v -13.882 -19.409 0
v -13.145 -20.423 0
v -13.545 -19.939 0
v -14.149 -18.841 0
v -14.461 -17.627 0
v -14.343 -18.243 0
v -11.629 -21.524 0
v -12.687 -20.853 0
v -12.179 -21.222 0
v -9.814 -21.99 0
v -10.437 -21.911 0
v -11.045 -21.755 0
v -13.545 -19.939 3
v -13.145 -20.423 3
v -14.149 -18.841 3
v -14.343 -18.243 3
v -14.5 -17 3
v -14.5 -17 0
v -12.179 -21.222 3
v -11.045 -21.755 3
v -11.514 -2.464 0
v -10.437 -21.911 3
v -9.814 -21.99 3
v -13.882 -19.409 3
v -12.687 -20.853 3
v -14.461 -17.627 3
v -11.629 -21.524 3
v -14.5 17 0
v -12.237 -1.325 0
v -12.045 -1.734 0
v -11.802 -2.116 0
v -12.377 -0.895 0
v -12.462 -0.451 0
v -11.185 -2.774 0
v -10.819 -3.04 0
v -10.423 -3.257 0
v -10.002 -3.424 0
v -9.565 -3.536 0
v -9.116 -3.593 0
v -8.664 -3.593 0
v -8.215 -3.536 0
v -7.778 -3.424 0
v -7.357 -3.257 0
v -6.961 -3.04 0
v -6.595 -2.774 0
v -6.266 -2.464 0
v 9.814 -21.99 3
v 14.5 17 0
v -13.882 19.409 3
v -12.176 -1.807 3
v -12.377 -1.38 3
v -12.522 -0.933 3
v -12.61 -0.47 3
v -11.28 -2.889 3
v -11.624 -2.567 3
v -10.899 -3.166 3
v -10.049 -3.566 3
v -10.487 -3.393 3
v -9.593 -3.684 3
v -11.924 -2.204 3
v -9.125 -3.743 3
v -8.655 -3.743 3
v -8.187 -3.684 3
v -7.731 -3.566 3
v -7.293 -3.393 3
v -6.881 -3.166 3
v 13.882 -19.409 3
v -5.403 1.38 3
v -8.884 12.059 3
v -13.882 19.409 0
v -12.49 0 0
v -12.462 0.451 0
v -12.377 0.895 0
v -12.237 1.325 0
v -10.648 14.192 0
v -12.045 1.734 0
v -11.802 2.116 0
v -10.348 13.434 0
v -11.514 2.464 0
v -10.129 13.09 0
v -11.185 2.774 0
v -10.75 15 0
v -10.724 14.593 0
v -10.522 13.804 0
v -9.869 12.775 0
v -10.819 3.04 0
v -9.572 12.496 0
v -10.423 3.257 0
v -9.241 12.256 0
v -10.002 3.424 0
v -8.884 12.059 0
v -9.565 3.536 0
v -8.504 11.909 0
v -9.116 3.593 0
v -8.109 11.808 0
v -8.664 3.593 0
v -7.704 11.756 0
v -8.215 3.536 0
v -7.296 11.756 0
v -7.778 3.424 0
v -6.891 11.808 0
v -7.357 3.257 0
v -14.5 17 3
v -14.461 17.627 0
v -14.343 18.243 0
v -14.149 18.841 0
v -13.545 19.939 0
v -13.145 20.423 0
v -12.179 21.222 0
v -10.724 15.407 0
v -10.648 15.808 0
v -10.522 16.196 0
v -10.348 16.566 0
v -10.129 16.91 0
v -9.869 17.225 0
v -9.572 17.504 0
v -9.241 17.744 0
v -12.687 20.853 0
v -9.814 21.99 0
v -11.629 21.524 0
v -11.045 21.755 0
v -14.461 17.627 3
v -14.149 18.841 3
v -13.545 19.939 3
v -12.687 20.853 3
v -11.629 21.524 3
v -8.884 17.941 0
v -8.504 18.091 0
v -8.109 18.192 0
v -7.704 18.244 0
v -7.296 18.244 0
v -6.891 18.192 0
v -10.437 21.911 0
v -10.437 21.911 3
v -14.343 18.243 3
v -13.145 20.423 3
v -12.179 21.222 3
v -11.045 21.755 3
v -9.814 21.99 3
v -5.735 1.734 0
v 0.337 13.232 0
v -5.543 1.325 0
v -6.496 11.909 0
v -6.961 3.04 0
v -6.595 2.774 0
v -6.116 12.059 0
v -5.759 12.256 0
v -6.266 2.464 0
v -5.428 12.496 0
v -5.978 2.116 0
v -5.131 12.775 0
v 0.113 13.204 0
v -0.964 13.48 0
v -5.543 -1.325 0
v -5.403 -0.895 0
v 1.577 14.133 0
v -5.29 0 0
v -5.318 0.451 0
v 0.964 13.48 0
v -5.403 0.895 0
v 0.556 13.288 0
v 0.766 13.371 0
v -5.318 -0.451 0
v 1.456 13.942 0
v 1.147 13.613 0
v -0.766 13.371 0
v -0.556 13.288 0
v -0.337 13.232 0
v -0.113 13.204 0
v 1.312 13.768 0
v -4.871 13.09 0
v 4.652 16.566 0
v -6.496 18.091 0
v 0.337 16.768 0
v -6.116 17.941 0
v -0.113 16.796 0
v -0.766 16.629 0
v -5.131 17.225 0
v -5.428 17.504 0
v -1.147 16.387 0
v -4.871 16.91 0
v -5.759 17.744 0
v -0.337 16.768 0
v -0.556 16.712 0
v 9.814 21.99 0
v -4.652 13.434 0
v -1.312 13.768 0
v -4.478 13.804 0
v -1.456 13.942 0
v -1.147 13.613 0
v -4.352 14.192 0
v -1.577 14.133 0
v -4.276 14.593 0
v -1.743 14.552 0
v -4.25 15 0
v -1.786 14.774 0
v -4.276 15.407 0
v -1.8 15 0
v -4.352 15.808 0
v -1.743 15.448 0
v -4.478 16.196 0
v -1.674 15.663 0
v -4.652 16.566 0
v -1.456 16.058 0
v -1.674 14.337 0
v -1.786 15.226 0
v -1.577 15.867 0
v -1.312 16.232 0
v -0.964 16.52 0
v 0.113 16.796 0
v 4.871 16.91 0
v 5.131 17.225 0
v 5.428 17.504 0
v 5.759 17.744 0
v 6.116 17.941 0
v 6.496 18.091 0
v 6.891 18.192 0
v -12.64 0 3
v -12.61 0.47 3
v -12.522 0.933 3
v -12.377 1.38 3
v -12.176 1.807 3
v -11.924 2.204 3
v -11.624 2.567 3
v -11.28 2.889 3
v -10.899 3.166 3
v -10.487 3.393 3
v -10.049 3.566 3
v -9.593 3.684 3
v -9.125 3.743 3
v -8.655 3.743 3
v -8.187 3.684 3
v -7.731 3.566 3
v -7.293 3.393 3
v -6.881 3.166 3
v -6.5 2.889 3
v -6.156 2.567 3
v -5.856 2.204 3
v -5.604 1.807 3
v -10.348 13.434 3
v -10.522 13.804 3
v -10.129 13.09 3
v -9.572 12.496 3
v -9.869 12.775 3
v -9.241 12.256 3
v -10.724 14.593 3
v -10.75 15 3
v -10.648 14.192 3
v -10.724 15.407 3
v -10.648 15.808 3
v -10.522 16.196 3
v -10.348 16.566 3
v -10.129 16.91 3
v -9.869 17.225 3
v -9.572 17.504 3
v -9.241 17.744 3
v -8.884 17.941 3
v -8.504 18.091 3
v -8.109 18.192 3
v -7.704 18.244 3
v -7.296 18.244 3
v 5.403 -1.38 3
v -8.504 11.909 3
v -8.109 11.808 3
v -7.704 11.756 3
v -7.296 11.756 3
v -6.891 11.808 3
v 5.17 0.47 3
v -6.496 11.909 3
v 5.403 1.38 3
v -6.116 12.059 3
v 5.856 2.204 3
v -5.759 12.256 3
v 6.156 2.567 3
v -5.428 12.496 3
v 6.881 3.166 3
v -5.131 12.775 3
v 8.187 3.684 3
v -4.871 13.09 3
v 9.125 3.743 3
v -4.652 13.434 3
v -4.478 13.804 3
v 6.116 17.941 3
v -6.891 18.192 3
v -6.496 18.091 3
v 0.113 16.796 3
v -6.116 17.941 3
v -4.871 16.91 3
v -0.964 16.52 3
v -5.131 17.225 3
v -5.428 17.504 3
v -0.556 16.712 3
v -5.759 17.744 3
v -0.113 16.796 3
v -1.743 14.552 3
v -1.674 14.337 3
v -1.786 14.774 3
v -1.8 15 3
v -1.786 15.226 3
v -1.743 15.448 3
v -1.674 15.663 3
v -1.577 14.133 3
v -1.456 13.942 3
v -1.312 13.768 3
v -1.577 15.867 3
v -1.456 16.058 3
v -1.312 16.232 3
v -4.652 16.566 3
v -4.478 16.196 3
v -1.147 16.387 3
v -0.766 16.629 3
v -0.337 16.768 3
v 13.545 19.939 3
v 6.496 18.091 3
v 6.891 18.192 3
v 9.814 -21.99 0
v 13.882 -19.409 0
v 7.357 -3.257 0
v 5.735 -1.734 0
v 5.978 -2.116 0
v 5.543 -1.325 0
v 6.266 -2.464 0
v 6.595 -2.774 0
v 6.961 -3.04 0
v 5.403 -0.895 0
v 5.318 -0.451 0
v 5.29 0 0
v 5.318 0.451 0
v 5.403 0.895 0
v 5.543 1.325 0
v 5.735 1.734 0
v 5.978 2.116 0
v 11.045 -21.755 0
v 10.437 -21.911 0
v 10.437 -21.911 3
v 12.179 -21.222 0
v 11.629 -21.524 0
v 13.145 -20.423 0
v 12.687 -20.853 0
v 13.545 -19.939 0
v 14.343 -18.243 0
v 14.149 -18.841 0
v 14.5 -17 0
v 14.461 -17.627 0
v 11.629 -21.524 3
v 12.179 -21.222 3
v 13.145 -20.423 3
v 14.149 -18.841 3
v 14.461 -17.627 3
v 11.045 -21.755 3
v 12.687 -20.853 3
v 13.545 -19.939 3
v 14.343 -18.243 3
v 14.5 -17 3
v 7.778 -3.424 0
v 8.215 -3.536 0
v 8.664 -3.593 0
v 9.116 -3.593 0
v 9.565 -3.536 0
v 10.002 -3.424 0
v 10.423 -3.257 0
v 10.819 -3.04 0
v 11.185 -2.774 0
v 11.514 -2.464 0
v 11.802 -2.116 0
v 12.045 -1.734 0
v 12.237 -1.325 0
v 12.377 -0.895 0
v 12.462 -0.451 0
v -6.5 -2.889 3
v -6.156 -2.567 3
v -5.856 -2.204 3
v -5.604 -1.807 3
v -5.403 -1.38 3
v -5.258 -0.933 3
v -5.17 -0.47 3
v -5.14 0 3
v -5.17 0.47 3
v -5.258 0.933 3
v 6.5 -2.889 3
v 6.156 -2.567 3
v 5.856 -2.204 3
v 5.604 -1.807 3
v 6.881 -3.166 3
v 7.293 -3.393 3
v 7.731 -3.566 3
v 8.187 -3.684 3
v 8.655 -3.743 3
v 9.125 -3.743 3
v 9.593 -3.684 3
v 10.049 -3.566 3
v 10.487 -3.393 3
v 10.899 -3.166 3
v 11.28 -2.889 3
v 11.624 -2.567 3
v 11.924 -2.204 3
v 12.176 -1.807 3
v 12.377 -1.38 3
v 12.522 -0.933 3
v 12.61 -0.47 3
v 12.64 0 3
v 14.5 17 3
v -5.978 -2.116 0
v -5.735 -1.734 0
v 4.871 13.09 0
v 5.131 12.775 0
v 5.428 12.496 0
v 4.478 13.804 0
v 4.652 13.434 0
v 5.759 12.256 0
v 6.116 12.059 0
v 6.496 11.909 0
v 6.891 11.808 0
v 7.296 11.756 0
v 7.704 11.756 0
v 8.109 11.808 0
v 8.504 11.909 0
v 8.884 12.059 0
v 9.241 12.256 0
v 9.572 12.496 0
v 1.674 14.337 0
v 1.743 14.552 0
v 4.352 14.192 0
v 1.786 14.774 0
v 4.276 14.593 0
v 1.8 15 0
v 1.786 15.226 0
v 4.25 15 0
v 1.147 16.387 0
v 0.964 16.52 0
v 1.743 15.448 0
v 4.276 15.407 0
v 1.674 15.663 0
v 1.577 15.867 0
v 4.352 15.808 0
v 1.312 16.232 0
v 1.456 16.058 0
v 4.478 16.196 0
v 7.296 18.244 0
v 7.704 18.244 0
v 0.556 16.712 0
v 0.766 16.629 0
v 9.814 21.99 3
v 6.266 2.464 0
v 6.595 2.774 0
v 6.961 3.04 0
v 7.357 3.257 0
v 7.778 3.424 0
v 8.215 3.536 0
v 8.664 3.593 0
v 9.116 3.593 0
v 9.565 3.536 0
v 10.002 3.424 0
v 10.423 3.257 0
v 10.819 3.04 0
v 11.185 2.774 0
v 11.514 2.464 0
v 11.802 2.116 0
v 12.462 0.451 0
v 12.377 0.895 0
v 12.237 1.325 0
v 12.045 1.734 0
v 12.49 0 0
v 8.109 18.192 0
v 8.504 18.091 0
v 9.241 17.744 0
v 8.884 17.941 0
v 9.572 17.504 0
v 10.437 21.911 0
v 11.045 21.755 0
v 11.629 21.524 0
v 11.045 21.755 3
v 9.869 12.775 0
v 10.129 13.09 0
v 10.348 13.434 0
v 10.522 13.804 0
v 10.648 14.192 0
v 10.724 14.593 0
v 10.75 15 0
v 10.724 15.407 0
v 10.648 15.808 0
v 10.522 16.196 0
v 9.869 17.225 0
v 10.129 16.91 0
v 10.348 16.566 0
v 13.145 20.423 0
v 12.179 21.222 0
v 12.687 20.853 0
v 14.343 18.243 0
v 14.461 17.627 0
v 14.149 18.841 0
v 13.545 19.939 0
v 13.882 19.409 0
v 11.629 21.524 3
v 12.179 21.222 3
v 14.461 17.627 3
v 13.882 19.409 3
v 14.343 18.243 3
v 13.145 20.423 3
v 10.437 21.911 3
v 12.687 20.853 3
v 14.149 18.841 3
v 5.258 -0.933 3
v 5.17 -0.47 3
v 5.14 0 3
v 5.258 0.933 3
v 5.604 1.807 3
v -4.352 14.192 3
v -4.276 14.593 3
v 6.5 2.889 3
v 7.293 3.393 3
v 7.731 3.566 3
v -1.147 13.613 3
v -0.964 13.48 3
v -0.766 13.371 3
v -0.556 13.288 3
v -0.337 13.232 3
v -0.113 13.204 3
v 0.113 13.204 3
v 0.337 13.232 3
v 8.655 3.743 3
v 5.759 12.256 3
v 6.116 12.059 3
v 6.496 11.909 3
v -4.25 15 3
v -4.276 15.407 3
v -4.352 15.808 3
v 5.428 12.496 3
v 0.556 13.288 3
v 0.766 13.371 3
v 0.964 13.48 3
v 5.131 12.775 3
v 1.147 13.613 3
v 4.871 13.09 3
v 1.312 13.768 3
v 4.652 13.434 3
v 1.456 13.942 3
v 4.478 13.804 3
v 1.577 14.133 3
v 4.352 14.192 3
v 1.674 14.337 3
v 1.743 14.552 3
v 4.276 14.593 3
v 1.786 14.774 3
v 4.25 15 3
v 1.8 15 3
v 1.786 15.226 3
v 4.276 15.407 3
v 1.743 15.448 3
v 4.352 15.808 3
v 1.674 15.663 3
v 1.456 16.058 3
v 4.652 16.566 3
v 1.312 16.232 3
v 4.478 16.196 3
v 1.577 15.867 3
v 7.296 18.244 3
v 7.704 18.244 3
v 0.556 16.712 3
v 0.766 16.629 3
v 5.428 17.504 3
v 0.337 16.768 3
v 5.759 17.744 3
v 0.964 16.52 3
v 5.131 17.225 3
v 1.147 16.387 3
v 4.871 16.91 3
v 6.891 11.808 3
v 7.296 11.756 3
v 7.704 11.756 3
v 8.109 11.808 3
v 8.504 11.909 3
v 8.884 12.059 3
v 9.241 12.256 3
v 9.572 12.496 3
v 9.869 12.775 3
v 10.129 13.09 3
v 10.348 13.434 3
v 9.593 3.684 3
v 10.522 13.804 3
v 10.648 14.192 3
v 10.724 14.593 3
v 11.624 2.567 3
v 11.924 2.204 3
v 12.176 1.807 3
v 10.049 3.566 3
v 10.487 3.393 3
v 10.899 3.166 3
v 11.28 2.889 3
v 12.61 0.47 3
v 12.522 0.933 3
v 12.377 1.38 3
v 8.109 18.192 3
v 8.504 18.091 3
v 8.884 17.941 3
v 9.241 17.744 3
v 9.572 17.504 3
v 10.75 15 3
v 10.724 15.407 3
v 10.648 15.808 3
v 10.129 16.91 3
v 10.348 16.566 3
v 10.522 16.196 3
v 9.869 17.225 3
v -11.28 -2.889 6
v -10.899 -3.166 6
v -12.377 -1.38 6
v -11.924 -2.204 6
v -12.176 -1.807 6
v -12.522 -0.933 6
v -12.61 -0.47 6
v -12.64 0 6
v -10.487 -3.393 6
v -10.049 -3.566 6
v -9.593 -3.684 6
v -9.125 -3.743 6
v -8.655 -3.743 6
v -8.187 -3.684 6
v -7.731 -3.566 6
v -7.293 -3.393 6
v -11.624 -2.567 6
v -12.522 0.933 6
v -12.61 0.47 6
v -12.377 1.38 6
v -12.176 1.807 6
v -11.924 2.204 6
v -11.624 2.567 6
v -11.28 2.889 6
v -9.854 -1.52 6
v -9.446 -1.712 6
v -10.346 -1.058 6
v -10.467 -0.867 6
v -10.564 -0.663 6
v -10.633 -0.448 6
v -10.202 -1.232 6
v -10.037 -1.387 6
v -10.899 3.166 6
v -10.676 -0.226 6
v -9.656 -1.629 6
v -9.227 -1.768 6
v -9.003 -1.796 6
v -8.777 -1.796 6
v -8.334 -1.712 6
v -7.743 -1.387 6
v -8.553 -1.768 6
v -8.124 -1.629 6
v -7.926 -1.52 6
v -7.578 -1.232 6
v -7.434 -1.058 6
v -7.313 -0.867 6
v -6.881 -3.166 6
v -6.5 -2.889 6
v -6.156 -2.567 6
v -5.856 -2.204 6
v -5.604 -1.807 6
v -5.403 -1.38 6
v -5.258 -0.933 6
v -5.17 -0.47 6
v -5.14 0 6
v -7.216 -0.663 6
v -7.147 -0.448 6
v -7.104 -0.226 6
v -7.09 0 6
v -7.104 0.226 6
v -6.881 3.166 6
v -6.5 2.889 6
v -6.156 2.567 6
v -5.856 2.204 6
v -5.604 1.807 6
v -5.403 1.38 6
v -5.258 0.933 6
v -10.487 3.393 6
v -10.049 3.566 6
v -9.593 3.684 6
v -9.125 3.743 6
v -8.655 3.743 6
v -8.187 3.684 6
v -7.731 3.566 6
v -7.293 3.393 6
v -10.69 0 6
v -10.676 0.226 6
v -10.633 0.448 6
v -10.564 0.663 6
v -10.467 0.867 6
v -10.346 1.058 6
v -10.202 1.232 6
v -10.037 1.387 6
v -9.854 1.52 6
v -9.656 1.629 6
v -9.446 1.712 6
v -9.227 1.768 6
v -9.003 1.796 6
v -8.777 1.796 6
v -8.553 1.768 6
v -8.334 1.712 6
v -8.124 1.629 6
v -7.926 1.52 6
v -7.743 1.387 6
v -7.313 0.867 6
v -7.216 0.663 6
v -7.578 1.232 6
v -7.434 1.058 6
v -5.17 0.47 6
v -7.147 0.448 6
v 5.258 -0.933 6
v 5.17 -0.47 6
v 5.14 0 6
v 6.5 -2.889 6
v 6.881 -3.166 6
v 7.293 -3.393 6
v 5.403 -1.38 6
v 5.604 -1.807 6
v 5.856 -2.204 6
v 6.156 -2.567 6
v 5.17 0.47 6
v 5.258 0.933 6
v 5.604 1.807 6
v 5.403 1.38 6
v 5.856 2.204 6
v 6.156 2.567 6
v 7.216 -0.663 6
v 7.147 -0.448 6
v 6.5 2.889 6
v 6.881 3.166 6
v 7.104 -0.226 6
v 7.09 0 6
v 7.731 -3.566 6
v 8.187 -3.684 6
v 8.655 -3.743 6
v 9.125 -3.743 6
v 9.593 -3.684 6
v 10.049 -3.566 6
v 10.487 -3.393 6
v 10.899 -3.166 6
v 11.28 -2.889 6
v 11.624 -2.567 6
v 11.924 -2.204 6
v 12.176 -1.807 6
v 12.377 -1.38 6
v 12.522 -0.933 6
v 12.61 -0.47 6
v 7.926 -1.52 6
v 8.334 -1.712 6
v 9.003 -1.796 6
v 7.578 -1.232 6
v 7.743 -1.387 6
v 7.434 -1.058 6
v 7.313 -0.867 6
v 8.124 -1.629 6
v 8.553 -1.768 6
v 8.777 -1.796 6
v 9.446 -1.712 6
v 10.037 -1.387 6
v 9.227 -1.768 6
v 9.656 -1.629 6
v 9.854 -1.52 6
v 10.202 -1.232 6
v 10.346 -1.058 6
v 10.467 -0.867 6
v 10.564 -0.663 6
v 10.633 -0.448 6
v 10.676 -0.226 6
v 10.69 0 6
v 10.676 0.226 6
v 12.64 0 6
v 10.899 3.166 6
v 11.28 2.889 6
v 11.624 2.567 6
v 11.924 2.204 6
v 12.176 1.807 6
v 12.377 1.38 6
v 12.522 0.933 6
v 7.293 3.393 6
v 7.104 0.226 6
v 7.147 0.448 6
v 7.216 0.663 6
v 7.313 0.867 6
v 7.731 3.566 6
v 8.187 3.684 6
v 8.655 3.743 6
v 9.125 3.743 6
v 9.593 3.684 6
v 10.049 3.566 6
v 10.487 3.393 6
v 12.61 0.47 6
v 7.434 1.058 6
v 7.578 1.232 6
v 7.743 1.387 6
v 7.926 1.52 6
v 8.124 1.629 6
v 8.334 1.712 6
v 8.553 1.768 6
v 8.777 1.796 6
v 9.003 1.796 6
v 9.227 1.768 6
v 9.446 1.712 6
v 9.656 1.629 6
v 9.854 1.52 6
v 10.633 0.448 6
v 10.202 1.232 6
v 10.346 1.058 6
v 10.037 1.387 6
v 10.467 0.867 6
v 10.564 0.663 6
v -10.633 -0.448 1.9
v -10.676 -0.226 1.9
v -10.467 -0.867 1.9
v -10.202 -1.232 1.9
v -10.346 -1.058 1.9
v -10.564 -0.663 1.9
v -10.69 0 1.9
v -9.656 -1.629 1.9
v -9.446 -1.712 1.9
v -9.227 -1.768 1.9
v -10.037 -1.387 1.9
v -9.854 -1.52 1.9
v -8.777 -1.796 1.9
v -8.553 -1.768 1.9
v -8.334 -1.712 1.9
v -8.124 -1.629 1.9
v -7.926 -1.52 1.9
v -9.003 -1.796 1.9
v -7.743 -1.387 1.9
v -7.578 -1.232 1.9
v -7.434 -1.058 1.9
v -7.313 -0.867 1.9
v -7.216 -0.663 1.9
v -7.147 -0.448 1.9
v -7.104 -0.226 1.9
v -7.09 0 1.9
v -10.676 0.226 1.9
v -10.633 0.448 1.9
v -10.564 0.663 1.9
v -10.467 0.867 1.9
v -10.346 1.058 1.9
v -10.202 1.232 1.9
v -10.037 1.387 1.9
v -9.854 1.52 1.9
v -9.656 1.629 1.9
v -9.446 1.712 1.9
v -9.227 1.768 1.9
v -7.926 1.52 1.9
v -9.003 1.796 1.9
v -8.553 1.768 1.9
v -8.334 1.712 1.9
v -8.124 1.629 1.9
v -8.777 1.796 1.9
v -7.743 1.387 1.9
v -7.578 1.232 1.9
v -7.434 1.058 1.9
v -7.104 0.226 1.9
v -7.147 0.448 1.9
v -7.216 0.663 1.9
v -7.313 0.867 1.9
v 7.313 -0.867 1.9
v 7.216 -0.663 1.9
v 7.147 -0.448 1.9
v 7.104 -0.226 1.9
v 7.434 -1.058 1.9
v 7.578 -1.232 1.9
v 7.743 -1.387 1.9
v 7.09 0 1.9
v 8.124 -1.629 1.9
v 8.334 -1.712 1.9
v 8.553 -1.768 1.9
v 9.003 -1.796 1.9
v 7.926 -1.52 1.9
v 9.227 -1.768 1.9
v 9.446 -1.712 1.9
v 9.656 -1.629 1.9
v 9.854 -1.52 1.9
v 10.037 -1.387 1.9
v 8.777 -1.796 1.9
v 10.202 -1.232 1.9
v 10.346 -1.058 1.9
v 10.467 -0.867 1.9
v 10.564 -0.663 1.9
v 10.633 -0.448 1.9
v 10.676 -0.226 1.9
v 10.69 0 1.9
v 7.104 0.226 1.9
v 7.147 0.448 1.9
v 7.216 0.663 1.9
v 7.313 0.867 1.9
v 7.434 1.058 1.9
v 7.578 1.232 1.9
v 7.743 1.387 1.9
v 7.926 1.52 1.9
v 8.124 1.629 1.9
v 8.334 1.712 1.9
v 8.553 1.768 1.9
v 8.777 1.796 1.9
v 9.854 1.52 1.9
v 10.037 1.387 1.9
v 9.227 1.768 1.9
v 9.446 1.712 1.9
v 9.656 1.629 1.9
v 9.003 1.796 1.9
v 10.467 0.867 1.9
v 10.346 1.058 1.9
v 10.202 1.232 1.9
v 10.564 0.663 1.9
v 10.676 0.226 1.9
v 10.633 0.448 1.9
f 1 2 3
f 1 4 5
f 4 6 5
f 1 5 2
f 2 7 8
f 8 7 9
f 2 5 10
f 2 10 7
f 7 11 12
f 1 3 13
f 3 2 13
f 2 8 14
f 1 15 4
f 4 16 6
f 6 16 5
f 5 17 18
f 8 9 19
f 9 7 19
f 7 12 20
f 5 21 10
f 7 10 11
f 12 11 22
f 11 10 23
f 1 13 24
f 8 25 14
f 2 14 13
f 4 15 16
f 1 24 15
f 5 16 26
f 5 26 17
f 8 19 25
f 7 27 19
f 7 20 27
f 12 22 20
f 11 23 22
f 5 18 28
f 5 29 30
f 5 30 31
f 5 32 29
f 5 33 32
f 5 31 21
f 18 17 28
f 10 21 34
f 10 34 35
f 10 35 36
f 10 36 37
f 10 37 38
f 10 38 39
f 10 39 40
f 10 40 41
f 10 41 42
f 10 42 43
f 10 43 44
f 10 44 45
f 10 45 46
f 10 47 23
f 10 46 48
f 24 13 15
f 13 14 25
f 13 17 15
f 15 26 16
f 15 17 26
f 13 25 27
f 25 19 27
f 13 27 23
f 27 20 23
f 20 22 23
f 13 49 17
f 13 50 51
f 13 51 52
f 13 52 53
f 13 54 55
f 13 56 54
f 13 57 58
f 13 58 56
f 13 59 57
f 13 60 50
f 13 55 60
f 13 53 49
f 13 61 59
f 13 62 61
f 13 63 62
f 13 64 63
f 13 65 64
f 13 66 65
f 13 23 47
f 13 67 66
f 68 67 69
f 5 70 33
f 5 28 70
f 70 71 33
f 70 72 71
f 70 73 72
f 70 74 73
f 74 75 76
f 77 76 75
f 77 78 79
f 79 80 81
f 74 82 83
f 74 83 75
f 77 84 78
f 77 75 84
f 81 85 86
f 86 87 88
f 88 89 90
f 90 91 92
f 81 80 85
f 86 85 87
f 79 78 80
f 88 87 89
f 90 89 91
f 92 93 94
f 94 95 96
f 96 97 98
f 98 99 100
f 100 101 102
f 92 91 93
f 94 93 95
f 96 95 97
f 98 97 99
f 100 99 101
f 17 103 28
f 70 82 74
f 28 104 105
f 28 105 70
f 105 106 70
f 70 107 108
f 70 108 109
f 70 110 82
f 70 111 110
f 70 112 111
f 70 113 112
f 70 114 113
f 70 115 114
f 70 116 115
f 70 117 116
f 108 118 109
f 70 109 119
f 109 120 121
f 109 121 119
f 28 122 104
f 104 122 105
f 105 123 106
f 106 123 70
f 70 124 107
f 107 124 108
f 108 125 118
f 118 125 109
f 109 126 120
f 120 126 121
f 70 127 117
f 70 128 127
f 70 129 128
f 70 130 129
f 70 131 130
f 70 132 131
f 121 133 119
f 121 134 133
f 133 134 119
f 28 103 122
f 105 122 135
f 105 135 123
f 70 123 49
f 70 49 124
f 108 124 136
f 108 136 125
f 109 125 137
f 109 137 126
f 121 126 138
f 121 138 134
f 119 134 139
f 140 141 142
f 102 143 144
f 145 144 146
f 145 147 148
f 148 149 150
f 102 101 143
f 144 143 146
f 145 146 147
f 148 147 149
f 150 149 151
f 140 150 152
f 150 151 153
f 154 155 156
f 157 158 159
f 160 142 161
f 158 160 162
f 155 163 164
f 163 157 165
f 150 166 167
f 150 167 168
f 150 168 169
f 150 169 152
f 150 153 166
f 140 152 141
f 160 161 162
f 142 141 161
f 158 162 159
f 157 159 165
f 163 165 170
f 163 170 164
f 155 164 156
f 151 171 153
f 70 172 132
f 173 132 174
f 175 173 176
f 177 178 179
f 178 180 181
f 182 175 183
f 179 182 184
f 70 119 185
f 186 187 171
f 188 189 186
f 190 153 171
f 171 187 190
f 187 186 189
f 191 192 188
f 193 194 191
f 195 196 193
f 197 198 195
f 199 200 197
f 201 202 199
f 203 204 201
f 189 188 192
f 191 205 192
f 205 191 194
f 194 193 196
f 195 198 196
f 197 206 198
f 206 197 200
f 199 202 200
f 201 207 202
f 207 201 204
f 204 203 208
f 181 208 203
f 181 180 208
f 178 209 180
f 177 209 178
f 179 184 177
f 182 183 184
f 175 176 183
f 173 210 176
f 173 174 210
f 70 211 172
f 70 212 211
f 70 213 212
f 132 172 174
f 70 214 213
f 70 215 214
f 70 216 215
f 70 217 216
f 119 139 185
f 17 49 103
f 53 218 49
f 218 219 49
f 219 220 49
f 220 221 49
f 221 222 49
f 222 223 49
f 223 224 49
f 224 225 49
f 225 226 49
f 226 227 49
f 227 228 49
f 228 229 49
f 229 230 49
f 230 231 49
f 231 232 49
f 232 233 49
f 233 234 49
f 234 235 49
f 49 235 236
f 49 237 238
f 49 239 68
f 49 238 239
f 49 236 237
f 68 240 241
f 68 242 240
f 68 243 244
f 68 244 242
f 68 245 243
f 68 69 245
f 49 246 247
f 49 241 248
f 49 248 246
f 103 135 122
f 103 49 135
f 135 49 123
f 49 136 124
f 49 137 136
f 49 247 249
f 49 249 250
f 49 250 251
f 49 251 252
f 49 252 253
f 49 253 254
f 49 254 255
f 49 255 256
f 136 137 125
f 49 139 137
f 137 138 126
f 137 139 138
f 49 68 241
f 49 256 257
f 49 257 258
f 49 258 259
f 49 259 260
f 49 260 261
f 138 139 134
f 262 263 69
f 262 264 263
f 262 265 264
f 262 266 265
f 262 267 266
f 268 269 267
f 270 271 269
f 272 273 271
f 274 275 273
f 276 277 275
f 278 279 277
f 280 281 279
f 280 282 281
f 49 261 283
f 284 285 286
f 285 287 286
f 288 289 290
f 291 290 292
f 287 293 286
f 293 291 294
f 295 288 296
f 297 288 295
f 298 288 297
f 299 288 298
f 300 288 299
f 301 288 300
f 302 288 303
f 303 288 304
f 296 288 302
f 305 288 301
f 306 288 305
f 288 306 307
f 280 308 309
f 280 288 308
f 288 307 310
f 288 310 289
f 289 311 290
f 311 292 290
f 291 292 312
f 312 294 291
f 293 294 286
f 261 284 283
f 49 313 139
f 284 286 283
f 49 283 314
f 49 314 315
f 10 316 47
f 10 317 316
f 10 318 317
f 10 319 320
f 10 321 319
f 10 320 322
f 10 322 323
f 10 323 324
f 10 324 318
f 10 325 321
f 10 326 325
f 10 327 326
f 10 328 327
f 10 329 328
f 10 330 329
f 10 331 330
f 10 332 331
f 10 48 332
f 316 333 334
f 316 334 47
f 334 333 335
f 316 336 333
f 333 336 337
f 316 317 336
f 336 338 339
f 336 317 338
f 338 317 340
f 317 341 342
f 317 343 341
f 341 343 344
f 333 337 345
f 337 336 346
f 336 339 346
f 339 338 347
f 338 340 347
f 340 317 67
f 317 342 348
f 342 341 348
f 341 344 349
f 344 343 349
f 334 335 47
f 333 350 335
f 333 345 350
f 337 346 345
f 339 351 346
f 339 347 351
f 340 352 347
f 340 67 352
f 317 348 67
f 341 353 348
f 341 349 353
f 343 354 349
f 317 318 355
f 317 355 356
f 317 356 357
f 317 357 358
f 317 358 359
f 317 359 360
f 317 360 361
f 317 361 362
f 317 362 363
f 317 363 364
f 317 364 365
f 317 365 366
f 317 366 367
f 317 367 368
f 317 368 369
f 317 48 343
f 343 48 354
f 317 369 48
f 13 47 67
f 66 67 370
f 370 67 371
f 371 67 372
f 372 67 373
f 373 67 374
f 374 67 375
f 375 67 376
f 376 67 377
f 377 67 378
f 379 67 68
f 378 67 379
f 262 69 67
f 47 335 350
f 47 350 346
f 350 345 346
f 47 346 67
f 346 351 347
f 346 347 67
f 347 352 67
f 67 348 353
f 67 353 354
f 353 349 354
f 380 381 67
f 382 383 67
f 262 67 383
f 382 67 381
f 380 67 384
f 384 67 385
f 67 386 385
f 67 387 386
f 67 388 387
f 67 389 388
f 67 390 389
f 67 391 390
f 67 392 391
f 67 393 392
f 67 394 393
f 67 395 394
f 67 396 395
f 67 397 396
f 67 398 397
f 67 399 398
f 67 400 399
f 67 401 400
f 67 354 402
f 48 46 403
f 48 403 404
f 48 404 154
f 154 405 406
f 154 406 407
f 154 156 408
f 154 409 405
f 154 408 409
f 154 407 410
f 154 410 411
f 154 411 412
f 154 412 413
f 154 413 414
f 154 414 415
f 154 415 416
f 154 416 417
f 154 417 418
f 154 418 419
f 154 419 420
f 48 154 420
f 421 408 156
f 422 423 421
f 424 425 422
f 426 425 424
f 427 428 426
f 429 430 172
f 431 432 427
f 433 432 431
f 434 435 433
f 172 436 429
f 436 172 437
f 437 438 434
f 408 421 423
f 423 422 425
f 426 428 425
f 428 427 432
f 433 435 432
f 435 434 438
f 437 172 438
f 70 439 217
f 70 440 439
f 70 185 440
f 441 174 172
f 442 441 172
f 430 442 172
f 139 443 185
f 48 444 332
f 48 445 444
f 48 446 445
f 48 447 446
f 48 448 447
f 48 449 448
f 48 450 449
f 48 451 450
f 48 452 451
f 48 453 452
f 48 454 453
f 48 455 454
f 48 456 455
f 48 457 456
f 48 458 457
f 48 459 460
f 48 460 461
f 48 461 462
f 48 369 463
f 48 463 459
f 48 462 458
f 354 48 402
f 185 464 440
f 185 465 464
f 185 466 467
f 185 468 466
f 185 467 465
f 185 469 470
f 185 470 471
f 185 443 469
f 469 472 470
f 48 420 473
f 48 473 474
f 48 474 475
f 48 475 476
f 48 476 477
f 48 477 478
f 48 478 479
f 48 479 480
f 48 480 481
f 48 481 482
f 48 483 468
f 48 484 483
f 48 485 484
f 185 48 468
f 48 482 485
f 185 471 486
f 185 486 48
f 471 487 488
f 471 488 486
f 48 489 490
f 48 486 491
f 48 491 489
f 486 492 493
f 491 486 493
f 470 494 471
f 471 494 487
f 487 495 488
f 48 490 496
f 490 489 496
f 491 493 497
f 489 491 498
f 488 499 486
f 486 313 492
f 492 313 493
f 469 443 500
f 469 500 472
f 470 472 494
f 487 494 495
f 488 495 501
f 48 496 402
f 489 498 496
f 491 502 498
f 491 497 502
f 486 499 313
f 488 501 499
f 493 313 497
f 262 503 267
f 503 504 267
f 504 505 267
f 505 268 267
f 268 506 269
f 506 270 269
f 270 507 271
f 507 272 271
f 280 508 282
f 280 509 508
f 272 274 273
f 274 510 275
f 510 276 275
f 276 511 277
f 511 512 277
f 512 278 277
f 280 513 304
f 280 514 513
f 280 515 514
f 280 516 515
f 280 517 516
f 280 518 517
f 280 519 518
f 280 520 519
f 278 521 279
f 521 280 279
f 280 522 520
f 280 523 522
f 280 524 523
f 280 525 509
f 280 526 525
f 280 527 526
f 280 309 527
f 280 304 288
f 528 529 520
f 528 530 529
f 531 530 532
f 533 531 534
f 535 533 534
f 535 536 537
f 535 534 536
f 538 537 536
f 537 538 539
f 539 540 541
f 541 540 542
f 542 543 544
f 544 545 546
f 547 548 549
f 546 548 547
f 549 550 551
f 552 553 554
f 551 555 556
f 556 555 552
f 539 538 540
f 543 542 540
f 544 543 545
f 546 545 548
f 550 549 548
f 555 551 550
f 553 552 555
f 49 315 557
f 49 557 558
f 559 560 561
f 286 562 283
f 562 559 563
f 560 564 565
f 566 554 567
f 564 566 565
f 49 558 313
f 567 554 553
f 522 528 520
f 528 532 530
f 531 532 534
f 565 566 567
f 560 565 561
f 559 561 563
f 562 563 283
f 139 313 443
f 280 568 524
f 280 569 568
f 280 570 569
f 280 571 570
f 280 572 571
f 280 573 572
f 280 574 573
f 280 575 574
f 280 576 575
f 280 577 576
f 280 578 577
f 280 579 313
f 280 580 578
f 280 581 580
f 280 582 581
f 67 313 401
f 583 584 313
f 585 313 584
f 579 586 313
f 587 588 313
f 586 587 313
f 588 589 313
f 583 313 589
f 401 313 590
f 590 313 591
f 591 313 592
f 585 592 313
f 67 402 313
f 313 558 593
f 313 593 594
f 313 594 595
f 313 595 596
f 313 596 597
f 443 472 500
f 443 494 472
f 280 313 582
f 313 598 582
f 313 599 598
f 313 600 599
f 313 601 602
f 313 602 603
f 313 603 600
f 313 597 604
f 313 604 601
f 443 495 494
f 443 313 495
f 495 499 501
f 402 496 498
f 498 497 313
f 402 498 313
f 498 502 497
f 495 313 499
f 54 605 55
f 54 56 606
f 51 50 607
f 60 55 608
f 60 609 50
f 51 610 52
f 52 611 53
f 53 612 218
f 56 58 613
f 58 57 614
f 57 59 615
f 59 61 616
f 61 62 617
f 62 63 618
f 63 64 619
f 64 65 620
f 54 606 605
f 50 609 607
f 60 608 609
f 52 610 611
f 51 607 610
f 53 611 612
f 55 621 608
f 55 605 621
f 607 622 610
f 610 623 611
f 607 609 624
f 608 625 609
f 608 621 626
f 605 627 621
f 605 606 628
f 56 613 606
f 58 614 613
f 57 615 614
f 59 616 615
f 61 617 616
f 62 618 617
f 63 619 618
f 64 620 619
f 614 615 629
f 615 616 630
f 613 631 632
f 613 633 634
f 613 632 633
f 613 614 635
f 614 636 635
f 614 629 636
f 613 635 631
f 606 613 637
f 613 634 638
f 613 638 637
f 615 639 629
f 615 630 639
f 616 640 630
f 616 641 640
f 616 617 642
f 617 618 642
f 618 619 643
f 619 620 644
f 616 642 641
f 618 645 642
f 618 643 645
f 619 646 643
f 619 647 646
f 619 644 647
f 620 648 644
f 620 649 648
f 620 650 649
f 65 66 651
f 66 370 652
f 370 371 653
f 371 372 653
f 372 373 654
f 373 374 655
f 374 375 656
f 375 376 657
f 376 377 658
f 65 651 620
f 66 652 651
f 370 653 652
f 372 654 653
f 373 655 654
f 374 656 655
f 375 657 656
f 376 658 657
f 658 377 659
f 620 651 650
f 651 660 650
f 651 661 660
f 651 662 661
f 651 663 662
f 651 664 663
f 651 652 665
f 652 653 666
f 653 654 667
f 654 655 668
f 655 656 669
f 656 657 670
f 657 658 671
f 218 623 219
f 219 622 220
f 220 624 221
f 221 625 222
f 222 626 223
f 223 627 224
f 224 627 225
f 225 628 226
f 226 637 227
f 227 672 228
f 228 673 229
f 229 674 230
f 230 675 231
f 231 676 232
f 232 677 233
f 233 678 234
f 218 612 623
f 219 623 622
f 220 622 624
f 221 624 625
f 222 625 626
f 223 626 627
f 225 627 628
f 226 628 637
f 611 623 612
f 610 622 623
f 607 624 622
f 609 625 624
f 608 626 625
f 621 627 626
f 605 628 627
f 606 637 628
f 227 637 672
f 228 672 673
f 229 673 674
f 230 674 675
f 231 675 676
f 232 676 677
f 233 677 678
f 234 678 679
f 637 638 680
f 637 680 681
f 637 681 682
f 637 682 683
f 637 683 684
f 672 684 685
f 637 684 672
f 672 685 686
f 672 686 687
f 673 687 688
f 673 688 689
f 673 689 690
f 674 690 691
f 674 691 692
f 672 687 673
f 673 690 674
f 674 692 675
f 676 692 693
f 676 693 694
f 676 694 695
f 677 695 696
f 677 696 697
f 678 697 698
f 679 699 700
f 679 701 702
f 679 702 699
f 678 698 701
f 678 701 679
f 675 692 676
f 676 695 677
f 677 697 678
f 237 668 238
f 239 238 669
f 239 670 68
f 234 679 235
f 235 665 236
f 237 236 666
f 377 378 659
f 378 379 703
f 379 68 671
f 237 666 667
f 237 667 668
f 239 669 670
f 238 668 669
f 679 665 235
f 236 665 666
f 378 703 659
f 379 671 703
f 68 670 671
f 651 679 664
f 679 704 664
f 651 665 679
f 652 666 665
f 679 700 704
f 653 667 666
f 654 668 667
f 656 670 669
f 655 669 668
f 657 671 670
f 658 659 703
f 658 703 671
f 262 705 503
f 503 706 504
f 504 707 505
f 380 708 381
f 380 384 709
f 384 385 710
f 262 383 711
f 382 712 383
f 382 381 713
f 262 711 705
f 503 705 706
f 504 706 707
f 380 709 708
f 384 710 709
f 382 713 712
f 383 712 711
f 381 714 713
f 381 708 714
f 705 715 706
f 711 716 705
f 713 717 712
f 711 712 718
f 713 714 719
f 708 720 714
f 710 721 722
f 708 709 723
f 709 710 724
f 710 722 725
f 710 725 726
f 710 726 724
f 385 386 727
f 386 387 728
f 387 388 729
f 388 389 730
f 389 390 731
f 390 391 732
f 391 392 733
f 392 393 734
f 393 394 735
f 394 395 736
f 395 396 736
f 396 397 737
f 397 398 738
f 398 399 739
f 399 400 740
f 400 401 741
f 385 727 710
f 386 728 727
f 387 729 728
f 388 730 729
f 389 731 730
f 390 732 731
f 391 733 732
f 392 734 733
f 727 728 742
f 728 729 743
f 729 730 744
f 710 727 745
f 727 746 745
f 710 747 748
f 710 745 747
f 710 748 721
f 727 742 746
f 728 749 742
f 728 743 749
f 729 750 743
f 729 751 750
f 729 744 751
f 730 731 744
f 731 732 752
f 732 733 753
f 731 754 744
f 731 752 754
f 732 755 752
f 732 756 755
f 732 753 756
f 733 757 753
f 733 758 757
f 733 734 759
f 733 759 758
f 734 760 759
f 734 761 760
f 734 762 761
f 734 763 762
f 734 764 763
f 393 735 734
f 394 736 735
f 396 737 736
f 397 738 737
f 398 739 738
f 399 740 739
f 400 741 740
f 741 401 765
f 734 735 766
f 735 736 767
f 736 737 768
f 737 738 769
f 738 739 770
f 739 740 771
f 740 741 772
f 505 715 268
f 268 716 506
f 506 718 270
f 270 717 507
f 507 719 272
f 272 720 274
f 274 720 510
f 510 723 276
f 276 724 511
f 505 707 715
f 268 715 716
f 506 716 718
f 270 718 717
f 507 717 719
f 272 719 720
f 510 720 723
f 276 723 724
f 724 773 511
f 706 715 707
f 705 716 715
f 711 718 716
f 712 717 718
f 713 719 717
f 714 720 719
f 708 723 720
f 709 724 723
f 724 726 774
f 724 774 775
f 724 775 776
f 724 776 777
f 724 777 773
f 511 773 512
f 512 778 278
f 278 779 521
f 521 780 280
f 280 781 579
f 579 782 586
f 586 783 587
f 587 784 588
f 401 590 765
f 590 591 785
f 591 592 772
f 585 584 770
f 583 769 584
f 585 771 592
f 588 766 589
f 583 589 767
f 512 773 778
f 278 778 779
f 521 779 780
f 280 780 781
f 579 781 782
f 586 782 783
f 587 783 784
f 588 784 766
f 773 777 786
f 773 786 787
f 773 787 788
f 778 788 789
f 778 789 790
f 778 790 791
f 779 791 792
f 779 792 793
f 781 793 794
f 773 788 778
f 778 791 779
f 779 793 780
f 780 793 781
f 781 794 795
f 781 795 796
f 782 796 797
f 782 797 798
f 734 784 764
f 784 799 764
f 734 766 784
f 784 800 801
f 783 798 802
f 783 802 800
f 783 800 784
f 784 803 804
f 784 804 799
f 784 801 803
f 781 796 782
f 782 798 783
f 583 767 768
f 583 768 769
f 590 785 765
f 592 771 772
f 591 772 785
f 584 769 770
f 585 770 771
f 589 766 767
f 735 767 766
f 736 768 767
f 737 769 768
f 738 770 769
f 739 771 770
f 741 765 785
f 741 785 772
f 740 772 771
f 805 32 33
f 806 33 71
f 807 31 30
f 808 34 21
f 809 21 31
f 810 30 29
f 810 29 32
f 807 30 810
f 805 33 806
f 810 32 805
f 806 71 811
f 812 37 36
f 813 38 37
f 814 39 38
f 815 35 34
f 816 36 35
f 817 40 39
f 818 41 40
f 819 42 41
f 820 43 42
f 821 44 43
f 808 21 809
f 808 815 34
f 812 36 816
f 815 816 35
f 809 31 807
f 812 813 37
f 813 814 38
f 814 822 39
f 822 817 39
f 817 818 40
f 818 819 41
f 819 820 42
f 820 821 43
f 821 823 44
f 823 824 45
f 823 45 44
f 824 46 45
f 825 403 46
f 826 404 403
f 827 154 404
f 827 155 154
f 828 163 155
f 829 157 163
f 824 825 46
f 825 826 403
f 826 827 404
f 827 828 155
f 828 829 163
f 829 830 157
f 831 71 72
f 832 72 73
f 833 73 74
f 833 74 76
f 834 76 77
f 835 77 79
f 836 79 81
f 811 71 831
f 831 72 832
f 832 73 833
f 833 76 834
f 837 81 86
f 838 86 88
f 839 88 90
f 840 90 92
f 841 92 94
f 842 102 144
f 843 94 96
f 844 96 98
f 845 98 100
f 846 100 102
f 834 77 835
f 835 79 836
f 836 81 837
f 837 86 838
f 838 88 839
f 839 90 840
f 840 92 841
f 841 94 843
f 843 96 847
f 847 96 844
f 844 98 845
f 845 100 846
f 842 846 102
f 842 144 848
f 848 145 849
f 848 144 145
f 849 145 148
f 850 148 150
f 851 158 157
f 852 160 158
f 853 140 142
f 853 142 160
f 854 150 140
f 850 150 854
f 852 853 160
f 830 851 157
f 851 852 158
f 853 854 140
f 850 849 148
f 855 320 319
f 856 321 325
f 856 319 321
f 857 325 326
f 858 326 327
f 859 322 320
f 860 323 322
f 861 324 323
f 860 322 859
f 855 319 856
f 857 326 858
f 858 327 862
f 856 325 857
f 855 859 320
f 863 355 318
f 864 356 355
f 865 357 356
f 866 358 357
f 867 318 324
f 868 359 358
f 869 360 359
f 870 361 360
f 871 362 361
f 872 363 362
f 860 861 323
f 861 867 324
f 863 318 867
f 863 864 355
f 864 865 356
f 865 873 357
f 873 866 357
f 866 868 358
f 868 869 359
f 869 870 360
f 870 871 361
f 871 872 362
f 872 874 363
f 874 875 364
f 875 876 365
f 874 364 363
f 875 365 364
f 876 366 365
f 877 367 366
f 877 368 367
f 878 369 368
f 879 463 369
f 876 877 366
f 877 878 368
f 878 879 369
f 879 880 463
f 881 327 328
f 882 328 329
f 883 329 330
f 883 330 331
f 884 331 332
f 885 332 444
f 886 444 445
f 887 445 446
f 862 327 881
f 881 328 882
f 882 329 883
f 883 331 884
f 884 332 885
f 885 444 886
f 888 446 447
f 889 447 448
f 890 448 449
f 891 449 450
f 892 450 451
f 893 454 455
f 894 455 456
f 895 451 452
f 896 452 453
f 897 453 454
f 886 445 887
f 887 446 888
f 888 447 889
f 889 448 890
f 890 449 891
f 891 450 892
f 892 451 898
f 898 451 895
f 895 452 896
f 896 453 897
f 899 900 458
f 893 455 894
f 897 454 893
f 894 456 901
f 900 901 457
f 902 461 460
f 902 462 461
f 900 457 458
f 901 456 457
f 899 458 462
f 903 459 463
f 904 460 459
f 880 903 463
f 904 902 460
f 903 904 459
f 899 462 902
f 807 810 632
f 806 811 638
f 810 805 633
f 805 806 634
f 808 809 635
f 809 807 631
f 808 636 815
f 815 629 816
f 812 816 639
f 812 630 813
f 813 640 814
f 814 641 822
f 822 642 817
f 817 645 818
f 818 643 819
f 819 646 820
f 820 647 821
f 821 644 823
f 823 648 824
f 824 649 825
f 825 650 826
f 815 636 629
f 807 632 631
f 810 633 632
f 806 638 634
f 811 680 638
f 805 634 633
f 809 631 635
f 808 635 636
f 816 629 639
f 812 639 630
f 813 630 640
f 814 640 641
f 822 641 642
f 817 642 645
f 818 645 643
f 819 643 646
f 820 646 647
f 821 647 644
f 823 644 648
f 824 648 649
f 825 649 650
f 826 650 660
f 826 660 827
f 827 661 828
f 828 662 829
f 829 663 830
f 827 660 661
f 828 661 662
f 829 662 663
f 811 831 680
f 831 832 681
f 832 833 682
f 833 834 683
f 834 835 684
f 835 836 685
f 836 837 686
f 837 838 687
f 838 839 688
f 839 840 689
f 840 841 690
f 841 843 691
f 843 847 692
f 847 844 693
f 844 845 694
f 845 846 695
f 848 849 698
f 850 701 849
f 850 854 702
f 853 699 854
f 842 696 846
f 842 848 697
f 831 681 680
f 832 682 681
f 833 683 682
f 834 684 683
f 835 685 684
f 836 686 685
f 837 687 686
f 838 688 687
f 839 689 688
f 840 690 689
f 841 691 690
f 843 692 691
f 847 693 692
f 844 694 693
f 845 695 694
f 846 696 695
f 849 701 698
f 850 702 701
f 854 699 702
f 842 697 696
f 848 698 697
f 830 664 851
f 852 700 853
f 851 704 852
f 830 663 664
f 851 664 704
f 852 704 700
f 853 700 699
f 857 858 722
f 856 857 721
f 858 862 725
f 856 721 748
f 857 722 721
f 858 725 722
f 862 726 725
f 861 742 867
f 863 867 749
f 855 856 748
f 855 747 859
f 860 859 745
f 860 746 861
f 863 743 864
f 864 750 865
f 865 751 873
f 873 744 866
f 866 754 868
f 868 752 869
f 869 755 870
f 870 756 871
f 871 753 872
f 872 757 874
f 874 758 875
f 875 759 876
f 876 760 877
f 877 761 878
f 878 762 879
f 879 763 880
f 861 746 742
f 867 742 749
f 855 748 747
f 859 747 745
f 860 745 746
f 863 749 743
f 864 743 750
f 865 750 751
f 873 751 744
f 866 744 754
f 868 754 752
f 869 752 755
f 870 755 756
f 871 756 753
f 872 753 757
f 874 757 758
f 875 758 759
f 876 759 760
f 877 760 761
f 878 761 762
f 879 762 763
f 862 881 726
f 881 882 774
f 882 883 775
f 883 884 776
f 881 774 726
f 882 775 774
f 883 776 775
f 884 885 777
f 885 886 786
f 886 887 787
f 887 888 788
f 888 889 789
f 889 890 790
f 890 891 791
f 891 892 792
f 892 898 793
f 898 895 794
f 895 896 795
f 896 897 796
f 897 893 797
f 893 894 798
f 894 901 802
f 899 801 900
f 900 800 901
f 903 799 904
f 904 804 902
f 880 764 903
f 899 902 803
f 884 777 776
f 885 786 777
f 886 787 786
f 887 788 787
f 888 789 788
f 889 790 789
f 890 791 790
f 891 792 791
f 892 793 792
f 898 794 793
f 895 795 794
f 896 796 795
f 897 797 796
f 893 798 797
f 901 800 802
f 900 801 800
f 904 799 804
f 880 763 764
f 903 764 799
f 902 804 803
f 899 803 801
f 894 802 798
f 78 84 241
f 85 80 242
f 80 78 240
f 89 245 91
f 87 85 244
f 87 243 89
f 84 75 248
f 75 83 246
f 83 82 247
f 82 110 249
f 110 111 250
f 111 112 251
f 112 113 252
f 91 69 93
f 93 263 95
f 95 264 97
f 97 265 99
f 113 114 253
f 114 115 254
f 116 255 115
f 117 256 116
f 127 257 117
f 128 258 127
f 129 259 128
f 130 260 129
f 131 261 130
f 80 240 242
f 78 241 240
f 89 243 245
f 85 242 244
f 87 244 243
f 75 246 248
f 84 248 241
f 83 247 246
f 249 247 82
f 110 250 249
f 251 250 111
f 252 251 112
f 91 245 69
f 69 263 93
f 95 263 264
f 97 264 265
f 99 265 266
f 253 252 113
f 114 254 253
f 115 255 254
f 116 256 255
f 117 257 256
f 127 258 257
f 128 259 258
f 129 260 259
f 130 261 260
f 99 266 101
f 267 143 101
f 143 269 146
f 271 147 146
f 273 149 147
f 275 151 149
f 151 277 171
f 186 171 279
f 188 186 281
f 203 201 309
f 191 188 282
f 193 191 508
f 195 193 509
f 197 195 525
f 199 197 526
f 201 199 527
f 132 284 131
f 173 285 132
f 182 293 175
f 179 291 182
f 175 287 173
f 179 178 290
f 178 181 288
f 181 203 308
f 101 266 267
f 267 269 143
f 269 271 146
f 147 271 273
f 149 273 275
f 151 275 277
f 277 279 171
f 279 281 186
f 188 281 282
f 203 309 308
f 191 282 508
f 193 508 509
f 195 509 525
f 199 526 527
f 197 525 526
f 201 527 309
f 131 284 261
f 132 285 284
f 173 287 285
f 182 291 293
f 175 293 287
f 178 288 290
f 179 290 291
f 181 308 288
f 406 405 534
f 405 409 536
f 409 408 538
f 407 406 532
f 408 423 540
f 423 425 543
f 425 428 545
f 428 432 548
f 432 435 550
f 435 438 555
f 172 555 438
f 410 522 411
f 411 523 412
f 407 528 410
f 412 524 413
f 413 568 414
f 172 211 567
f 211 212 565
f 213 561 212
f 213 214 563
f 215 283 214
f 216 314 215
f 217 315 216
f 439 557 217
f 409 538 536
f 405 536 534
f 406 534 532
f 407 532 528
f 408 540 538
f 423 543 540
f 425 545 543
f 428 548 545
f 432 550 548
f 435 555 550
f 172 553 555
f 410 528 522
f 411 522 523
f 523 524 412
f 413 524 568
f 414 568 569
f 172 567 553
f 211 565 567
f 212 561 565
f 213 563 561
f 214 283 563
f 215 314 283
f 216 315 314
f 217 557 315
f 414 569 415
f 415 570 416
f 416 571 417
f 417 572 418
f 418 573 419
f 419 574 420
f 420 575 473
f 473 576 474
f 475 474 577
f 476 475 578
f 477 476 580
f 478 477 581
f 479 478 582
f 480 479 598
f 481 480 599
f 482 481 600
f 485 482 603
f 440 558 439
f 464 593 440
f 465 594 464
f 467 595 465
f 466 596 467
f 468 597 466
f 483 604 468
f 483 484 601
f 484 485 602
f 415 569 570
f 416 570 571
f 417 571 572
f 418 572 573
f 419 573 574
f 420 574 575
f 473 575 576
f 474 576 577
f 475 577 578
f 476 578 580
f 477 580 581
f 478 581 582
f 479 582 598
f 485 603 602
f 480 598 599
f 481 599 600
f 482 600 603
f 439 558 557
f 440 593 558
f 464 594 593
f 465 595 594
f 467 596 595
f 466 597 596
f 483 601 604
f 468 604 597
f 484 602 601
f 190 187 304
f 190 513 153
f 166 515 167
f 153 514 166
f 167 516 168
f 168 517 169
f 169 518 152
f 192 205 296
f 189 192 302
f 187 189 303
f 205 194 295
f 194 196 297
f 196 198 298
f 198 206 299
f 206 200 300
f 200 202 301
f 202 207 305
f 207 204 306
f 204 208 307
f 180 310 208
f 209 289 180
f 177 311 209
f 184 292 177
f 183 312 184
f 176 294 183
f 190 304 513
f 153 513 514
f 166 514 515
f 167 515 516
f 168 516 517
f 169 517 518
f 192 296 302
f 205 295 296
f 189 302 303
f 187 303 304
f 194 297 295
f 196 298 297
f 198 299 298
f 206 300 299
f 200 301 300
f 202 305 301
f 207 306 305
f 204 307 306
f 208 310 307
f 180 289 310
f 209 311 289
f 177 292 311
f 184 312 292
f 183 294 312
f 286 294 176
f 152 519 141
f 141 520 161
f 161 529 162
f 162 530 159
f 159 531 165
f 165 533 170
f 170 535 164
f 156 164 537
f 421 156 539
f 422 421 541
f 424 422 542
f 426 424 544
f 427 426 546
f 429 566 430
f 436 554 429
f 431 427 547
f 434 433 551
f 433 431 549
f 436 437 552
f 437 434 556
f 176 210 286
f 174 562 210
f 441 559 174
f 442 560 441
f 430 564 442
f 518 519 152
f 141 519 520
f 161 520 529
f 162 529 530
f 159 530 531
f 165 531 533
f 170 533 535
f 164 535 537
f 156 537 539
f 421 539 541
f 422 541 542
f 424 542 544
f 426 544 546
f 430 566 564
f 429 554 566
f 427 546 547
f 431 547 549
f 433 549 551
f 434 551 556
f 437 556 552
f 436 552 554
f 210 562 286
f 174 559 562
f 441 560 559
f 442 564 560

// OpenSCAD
$fn = 50;

difference() {
	union() {
		hull() {
			translate(v = [-9.5, 17.0, 0]) {
				cylinder(h = 3, r = 5);
			}
			translate(v = [9.5, 17.0, 0]) {
				cylinder(h = 3, r = 5);
			}
			translate(v = [-9.5, -17.0, 0]) {
				cylinder(h = 3, r = 5);
			}
			translate(v = [9.5, -17.0, 0]) {
				cylinder(h = 3, r = 5);
			}
		}
		translate(v = [-8.89, 0.0, 3.0]) {
			cylinder(h = 3, r = 3.75);
		}
		translate(v = [8.89, 0.0, 3.0]) {
			cylinder(h = 3, r = 3.75);
		}
	}
	union() {
		translate(v = [-8.89, 0.0, 0]) {
			rotate(a = [0, 180, 0]) {
				difference() {
					union() {
						translate(v = [0, 0, -6.0]) {
							cylinder(h = 6, r = 1.5);
						}
						translate(v = [0, 0, -1.9]) {
							cylinder(h = 1.9, r1 = 1.8, r2 = 3.6);
						}
						translate(v = [0, 0, -6.0]) {
							cylinder(h = 6, r = 1.8);
						}
						translate(v = [0, 0, -6.0]) {
							cylinder(h = 6, r = 1.5);
						}
					}
					union();
				}
			}
		}
		translate(v = [8.89, 0.0, 0]) {
			rotate(a = [0, 180, 0]) {
				difference() {
					union() {
						translate(v = [0, 0, -6.0]) {
							cylinder(h = 6, r = 1.5);
						}
						translate(v = [0, 0, -1.9]) {
							cylinder(h = 1.9, r1 = 1.8, r2 = 3.6);
						}
						translate(v = [0, 0, -6.0]) {
							cylinder(h = 6, r = 1.8);
						}
						translate(v = [0, 0, -6.0]) {
							cylinder(h = 6, r = 1.5);
						}
					}
					union();
				}
			}
		}
		translate(v = [-7.5, 15.0, -1]) {
			cylinder(h = 5, r = 3.25);
		}
		translate(v = [7.5, 15.0, -1]) {
			cylinder(h = 5, r = 3.25);
		}
		translate(v = [0.0, 15.0, -1]) {
			cylinder(h = 5, r = 1.8);
		}
	}
}
